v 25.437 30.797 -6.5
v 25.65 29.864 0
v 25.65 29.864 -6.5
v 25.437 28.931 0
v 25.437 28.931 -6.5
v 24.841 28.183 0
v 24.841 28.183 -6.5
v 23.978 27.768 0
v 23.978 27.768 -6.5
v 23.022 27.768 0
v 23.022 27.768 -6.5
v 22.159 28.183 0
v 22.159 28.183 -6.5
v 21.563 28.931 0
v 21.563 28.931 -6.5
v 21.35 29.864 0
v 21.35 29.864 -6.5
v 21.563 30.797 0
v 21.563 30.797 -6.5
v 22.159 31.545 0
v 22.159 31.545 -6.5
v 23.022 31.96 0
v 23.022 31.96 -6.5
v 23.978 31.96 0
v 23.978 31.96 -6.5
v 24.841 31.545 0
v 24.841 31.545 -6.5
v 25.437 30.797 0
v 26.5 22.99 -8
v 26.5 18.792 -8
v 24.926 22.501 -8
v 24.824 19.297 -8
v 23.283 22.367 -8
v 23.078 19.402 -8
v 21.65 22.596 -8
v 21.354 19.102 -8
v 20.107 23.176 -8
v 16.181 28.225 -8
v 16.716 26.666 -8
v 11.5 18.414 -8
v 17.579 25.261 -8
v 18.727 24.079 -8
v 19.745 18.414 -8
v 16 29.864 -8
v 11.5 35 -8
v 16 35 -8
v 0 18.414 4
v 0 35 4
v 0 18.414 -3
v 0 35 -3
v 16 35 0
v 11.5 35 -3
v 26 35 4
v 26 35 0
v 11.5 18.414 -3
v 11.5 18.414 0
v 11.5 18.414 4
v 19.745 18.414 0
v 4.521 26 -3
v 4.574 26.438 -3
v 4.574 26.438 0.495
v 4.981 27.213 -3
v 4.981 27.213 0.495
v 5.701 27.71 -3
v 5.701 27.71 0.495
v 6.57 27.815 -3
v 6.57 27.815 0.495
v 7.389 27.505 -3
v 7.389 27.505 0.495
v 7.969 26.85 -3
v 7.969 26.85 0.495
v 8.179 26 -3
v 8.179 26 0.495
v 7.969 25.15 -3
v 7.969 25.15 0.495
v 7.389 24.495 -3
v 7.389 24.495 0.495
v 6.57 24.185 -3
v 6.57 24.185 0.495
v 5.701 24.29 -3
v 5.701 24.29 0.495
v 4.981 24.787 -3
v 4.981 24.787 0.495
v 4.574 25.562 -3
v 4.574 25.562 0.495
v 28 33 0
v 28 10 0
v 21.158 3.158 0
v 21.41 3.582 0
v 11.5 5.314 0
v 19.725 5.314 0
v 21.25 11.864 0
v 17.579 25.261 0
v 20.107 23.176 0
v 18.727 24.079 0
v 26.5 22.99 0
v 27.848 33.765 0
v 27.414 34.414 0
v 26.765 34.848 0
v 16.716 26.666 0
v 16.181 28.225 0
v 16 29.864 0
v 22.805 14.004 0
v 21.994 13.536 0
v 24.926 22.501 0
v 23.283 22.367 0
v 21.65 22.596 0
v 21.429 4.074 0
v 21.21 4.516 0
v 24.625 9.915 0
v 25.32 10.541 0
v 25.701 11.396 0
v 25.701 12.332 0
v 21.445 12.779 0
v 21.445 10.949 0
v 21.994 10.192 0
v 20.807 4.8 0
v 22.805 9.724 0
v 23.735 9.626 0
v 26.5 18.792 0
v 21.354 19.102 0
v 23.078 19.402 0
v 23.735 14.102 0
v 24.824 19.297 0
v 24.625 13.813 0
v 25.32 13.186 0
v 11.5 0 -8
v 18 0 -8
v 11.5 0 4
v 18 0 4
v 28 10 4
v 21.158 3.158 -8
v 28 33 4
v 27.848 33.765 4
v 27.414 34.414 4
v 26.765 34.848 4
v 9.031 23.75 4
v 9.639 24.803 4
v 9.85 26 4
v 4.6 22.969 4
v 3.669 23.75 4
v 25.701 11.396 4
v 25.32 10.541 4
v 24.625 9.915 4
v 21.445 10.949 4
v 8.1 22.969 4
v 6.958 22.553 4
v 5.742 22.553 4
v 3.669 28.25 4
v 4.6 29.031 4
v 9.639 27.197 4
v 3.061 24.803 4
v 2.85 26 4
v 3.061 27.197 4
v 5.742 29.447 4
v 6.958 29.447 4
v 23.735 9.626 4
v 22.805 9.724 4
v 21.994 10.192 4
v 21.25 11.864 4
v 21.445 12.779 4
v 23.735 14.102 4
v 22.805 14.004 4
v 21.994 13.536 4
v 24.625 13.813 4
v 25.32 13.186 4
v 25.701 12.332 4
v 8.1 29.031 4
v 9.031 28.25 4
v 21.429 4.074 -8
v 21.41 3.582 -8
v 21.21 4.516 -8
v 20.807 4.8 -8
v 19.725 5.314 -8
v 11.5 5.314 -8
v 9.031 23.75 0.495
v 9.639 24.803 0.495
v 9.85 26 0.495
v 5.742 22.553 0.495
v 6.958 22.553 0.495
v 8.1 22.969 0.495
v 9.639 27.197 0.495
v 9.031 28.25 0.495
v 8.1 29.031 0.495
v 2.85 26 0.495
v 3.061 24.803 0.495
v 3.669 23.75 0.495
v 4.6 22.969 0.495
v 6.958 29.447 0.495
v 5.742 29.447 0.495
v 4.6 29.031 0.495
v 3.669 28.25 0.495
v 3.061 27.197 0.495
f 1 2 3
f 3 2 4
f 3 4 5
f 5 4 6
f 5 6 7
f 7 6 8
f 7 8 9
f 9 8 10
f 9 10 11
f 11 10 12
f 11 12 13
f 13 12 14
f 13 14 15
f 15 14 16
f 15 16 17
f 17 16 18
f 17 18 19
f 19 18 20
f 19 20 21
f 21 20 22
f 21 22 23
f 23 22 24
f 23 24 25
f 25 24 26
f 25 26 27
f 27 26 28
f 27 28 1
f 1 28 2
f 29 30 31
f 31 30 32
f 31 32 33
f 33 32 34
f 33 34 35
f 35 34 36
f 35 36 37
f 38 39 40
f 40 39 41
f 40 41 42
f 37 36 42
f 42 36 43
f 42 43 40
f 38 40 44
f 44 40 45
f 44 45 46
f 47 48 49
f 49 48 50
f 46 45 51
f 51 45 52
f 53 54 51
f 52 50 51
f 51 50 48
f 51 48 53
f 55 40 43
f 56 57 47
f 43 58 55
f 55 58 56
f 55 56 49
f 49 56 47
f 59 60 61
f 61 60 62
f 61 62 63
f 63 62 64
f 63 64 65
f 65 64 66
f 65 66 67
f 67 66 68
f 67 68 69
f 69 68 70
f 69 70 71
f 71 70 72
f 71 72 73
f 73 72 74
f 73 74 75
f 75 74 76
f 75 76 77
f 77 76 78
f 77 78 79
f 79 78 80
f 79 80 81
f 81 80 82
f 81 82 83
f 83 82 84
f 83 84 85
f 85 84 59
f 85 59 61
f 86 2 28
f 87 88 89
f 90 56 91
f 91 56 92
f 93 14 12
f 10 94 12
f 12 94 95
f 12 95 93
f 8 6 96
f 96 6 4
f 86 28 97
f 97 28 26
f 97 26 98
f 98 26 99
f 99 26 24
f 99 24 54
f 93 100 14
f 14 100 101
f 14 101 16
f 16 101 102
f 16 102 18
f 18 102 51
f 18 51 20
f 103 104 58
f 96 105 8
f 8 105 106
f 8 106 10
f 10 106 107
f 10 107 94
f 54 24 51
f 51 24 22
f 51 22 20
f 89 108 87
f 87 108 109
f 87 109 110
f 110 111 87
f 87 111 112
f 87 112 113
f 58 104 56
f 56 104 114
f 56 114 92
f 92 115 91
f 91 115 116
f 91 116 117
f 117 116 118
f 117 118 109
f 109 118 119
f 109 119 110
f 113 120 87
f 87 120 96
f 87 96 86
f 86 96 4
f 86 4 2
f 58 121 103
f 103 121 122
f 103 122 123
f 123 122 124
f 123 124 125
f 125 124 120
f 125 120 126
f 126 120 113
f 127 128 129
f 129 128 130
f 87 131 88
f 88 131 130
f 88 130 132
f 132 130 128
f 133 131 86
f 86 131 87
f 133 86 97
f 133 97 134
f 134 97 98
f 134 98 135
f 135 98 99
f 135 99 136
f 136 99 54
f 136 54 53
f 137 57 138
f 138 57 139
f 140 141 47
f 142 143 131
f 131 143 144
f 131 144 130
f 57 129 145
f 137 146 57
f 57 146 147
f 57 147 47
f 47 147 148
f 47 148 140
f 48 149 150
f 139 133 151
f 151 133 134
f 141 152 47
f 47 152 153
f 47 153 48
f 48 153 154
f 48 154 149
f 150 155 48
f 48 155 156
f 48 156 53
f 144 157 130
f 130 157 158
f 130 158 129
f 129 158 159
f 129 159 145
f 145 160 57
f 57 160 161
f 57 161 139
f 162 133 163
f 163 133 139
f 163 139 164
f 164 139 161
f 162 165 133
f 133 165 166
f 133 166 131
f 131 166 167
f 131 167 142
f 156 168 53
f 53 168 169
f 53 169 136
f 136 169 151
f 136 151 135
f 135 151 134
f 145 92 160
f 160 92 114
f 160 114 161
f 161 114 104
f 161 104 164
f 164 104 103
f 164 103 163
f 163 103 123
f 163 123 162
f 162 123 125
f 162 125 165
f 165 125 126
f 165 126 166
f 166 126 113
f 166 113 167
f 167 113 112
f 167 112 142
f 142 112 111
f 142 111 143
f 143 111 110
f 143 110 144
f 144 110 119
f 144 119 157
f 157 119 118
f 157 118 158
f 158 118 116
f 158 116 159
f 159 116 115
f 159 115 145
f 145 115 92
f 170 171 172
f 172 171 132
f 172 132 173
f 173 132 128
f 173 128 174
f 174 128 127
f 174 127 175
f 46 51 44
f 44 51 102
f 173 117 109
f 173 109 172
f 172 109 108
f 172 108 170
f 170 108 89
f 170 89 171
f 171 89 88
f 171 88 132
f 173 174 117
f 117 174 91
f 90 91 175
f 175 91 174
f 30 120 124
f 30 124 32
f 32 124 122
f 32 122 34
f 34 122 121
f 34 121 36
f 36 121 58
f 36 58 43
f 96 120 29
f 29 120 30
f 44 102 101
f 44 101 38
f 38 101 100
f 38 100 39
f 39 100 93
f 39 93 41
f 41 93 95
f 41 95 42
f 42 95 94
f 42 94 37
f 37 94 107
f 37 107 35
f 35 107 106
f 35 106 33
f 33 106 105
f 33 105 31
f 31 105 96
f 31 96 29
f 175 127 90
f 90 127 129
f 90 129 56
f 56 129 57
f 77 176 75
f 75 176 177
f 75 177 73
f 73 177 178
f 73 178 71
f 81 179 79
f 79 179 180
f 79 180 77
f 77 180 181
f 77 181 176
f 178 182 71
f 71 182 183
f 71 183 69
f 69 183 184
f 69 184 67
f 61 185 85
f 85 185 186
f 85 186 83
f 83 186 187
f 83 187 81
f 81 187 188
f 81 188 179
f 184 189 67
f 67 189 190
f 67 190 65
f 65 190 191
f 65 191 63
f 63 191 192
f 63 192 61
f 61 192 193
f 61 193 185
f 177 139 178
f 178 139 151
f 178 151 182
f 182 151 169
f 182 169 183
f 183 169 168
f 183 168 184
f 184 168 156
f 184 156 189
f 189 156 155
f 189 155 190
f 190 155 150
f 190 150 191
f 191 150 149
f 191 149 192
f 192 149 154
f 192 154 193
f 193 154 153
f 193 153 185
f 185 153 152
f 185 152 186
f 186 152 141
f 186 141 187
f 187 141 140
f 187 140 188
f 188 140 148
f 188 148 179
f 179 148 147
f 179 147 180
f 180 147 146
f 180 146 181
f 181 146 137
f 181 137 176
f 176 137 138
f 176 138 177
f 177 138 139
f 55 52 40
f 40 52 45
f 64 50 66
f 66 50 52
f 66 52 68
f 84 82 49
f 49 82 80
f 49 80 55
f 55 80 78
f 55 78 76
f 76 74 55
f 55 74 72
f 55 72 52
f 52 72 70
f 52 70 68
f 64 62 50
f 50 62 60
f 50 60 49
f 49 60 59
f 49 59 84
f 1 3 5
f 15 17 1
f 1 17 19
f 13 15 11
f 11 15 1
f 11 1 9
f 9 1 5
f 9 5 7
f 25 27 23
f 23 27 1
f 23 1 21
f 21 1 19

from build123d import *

# Parameters (mm, degrees)
BOSS_EXTRUDE1_DEPTH                            = 4
SKETCH2_R                                      = 2.25
CUT_EXTRUDE1_DEPTH                             = 46
SKETCH2_3_R                                    = 2.15
BOSS_EXTRUDE2_DEPTH                            = 8
BOSS_EXTRUDE4_DEPTH                            = 8
SKETCH6_W                                      = 11.5
SKETCH6_H                                      = 18.413961031
CUT_EXTRUDE2_DEPTH                             = 47.400431032
SKETCH12_W                                     = 8
SKETCH12_H                                     = 13.1
CUT_EXTRUDE3_DEPTH                             = 40.286161686
CBORE_FOR_6_SOCKET_HEAD_CAP_SCREW1_D           = 3.6576
CBORE_FOR_6_SOCKET_HEAD_CAP_SCREW1_CBORE_D     = 7
CBORE_FOR_6_SOCKET_HEAD_CAP_SCREW1_CBORE_DEPTH = 3.5052
SKETCH13_W                                     = 11.5
SKETCH13_H                                     = 16.586038969
CUT_EXTRUDE4_DEPTH                             = 5
CUT_EXTRUDE5_START                             = -1.5
SKETCH14_R                                     = 2.15
CUT_EXTRUDE5_DEPTH                             = 1.5


with BuildPart() as part:
    # Sketch1 → Boss-Extrude1 (new body)
    with BuildSketch(Plane.XY):
        with BuildLine():
            Line((18, 0), (28, 10))
            Line((28, 10), (28, 33))
            ThreePointArc((28, 33), (27.414213562, 34.414213562), (26, 35))
            Line((26, 35), (0, 35))
            Line((0, 35), (0, 0))
            Line((0, 0), (18, 0))
        make_face()
    extrude(amount=BOSS_EXTRUDE1_DEPTH)

    # Sketch2 → Cut-Extrude1 (cut, through all)
    with BuildSketch(Plane(origin=(0, 0, 0), x_dir=(-1, 0, 0), z_dir=(0, 0, -1))):
        with Locations((-23.5, 11.863961031)):
            Circle(SKETCH2_R)
    extrude(amount=-CUT_EXTRUDE1_DEPTH, mode=Mode.SUBTRACT)

    # Sketch2<3> → Boss-Extrude2 (add)
    with BuildSketch(Plane(origin=(0, 0, 0), x_dir=(-1, 0, 0), z_dir=(0, 0, -1))):
        with Locations(Location((-23.5, 29.863961031, 0), (0, 0, 180))):
            Circle(SKETCH2_3_R)
    extrude(amount=BOSS_EXTRUDE2_DEPTH)

    # Sketch2<5> → Boss-Extrude4 (add)
    with BuildSketch(Plane(origin=(0, 0, 0), x_dir=(-1, 0, 0), z_dir=(0, 0, -1))):
        with BuildLine():
            ThreePointArc((-26.5, 18.792344681), (-23.077745882, 19.402143932), (-19.745003329, 18.413961031))
            Line((-19.745003329, 18.413961031), (-15.95, 18.413961031))
            Line((-15.95, 18.413961031), (-15.95, 5.313961031))
            Line((-15.95, 5.313961031), (-19.725, 5.313961031))
            ThreePointArc((-19.725, 5.313961031), (-20.25595921, 5.035394245), (-20.807324798, 4.799782009))
            ThreePointArc((-20.807324798, 4.799782009), (-21.429052247, 4.074422526), (-21.15825613, 3.15825613))
            Line((-21.15825613, 3.15825613), (-18, 0))
            Line((-18, 0), (0, 0))
            Line((0, 0), (0, 35))
            Line((0, 35), (-16, 35))
            Line((-16, 35), (-16, 29.863961031))
            ThreePointArc((-16, 29.863961031), (-19.392080819, 23.589010832), (-26.5, 22.990097488))
            Line((-26.5, 22.990097488), (-26.5, 18.792344681))
        make_face()
    extrude(amount=BOSS_EXTRUDE4_DEPTH)

    # Sketch6 → Cut-Extrude2 (cut, through all)
    with BuildSketch(Plane(origin=(0, 0, -8), x_dir=(-1, 0, 0), z_dir=(0, 0, -1))):
        with Locations((-5.75, 9.206980515)):
            Rectangle(SKETCH6_W, SKETCH6_H)
    extrude(amount=-CUT_EXTRUDE2_DEPTH, mode=Mode.SUBTRACT)

    # Sketch12 → Cut-Extrude3 (cut, through all)
    with BuildSketch(Plane(origin=(15.95, 0, 0), x_dir=(0, 0, -1), z_dir=(1, 0, 0))):
        with Locations((4, 11.863961031)):
            Rectangle(SKETCH12_W, SKETCH12_H)
    extrude(amount=-CUT_EXTRUDE3_DEPTH, mode=Mode.SUBTRACT)

    # CBORE for #6 Socket Head Cap Screw1 (through all)
    with Locations(Plane.XY.offset(4)):
        with Locations((6.35, 26)):
            CounterBoreHole(CBORE_FOR_6_SOCKET_HEAD_CAP_SCREW1_D / 2, CBORE_FOR_6_SOCKET_HEAD_CAP_SCREW1_CBORE_D / 2, CBORE_FOR_6_SOCKET_HEAD_CAP_SCREW1_CBORE_DEPTH)

    # Sketch13 → Cut-Extrude4 (cut)
    with BuildSketch(Plane(origin=(0, 0, -8), x_dir=(-1, 0, 0), z_dir=(0, 0, -1))):
        with Locations((-5.75, 26.706980515)):
            Rectangle(SKETCH13_W, SKETCH13_H)
    extrude(amount=-CUT_EXTRUDE4_DEPTH, mode=Mode.SUBTRACT)

    # Sketch14 → Cut-Extrude5 (cut)
    with BuildSketch(Plane(origin=(0, 0, -8), x_dir=(-1, 0, 0), z_dir=(0, 0, -1)).offset(CUT_EXTRUDE5_START)):
        with Locations(Location((-23.5, 29.863961031, 0), (0, 0, 180))):
            Circle(SKETCH14_R)
    extrude(amount=CUT_EXTRUDE5_DEPTH, mode=Mode.SUBTRACT)


solid = part.part
